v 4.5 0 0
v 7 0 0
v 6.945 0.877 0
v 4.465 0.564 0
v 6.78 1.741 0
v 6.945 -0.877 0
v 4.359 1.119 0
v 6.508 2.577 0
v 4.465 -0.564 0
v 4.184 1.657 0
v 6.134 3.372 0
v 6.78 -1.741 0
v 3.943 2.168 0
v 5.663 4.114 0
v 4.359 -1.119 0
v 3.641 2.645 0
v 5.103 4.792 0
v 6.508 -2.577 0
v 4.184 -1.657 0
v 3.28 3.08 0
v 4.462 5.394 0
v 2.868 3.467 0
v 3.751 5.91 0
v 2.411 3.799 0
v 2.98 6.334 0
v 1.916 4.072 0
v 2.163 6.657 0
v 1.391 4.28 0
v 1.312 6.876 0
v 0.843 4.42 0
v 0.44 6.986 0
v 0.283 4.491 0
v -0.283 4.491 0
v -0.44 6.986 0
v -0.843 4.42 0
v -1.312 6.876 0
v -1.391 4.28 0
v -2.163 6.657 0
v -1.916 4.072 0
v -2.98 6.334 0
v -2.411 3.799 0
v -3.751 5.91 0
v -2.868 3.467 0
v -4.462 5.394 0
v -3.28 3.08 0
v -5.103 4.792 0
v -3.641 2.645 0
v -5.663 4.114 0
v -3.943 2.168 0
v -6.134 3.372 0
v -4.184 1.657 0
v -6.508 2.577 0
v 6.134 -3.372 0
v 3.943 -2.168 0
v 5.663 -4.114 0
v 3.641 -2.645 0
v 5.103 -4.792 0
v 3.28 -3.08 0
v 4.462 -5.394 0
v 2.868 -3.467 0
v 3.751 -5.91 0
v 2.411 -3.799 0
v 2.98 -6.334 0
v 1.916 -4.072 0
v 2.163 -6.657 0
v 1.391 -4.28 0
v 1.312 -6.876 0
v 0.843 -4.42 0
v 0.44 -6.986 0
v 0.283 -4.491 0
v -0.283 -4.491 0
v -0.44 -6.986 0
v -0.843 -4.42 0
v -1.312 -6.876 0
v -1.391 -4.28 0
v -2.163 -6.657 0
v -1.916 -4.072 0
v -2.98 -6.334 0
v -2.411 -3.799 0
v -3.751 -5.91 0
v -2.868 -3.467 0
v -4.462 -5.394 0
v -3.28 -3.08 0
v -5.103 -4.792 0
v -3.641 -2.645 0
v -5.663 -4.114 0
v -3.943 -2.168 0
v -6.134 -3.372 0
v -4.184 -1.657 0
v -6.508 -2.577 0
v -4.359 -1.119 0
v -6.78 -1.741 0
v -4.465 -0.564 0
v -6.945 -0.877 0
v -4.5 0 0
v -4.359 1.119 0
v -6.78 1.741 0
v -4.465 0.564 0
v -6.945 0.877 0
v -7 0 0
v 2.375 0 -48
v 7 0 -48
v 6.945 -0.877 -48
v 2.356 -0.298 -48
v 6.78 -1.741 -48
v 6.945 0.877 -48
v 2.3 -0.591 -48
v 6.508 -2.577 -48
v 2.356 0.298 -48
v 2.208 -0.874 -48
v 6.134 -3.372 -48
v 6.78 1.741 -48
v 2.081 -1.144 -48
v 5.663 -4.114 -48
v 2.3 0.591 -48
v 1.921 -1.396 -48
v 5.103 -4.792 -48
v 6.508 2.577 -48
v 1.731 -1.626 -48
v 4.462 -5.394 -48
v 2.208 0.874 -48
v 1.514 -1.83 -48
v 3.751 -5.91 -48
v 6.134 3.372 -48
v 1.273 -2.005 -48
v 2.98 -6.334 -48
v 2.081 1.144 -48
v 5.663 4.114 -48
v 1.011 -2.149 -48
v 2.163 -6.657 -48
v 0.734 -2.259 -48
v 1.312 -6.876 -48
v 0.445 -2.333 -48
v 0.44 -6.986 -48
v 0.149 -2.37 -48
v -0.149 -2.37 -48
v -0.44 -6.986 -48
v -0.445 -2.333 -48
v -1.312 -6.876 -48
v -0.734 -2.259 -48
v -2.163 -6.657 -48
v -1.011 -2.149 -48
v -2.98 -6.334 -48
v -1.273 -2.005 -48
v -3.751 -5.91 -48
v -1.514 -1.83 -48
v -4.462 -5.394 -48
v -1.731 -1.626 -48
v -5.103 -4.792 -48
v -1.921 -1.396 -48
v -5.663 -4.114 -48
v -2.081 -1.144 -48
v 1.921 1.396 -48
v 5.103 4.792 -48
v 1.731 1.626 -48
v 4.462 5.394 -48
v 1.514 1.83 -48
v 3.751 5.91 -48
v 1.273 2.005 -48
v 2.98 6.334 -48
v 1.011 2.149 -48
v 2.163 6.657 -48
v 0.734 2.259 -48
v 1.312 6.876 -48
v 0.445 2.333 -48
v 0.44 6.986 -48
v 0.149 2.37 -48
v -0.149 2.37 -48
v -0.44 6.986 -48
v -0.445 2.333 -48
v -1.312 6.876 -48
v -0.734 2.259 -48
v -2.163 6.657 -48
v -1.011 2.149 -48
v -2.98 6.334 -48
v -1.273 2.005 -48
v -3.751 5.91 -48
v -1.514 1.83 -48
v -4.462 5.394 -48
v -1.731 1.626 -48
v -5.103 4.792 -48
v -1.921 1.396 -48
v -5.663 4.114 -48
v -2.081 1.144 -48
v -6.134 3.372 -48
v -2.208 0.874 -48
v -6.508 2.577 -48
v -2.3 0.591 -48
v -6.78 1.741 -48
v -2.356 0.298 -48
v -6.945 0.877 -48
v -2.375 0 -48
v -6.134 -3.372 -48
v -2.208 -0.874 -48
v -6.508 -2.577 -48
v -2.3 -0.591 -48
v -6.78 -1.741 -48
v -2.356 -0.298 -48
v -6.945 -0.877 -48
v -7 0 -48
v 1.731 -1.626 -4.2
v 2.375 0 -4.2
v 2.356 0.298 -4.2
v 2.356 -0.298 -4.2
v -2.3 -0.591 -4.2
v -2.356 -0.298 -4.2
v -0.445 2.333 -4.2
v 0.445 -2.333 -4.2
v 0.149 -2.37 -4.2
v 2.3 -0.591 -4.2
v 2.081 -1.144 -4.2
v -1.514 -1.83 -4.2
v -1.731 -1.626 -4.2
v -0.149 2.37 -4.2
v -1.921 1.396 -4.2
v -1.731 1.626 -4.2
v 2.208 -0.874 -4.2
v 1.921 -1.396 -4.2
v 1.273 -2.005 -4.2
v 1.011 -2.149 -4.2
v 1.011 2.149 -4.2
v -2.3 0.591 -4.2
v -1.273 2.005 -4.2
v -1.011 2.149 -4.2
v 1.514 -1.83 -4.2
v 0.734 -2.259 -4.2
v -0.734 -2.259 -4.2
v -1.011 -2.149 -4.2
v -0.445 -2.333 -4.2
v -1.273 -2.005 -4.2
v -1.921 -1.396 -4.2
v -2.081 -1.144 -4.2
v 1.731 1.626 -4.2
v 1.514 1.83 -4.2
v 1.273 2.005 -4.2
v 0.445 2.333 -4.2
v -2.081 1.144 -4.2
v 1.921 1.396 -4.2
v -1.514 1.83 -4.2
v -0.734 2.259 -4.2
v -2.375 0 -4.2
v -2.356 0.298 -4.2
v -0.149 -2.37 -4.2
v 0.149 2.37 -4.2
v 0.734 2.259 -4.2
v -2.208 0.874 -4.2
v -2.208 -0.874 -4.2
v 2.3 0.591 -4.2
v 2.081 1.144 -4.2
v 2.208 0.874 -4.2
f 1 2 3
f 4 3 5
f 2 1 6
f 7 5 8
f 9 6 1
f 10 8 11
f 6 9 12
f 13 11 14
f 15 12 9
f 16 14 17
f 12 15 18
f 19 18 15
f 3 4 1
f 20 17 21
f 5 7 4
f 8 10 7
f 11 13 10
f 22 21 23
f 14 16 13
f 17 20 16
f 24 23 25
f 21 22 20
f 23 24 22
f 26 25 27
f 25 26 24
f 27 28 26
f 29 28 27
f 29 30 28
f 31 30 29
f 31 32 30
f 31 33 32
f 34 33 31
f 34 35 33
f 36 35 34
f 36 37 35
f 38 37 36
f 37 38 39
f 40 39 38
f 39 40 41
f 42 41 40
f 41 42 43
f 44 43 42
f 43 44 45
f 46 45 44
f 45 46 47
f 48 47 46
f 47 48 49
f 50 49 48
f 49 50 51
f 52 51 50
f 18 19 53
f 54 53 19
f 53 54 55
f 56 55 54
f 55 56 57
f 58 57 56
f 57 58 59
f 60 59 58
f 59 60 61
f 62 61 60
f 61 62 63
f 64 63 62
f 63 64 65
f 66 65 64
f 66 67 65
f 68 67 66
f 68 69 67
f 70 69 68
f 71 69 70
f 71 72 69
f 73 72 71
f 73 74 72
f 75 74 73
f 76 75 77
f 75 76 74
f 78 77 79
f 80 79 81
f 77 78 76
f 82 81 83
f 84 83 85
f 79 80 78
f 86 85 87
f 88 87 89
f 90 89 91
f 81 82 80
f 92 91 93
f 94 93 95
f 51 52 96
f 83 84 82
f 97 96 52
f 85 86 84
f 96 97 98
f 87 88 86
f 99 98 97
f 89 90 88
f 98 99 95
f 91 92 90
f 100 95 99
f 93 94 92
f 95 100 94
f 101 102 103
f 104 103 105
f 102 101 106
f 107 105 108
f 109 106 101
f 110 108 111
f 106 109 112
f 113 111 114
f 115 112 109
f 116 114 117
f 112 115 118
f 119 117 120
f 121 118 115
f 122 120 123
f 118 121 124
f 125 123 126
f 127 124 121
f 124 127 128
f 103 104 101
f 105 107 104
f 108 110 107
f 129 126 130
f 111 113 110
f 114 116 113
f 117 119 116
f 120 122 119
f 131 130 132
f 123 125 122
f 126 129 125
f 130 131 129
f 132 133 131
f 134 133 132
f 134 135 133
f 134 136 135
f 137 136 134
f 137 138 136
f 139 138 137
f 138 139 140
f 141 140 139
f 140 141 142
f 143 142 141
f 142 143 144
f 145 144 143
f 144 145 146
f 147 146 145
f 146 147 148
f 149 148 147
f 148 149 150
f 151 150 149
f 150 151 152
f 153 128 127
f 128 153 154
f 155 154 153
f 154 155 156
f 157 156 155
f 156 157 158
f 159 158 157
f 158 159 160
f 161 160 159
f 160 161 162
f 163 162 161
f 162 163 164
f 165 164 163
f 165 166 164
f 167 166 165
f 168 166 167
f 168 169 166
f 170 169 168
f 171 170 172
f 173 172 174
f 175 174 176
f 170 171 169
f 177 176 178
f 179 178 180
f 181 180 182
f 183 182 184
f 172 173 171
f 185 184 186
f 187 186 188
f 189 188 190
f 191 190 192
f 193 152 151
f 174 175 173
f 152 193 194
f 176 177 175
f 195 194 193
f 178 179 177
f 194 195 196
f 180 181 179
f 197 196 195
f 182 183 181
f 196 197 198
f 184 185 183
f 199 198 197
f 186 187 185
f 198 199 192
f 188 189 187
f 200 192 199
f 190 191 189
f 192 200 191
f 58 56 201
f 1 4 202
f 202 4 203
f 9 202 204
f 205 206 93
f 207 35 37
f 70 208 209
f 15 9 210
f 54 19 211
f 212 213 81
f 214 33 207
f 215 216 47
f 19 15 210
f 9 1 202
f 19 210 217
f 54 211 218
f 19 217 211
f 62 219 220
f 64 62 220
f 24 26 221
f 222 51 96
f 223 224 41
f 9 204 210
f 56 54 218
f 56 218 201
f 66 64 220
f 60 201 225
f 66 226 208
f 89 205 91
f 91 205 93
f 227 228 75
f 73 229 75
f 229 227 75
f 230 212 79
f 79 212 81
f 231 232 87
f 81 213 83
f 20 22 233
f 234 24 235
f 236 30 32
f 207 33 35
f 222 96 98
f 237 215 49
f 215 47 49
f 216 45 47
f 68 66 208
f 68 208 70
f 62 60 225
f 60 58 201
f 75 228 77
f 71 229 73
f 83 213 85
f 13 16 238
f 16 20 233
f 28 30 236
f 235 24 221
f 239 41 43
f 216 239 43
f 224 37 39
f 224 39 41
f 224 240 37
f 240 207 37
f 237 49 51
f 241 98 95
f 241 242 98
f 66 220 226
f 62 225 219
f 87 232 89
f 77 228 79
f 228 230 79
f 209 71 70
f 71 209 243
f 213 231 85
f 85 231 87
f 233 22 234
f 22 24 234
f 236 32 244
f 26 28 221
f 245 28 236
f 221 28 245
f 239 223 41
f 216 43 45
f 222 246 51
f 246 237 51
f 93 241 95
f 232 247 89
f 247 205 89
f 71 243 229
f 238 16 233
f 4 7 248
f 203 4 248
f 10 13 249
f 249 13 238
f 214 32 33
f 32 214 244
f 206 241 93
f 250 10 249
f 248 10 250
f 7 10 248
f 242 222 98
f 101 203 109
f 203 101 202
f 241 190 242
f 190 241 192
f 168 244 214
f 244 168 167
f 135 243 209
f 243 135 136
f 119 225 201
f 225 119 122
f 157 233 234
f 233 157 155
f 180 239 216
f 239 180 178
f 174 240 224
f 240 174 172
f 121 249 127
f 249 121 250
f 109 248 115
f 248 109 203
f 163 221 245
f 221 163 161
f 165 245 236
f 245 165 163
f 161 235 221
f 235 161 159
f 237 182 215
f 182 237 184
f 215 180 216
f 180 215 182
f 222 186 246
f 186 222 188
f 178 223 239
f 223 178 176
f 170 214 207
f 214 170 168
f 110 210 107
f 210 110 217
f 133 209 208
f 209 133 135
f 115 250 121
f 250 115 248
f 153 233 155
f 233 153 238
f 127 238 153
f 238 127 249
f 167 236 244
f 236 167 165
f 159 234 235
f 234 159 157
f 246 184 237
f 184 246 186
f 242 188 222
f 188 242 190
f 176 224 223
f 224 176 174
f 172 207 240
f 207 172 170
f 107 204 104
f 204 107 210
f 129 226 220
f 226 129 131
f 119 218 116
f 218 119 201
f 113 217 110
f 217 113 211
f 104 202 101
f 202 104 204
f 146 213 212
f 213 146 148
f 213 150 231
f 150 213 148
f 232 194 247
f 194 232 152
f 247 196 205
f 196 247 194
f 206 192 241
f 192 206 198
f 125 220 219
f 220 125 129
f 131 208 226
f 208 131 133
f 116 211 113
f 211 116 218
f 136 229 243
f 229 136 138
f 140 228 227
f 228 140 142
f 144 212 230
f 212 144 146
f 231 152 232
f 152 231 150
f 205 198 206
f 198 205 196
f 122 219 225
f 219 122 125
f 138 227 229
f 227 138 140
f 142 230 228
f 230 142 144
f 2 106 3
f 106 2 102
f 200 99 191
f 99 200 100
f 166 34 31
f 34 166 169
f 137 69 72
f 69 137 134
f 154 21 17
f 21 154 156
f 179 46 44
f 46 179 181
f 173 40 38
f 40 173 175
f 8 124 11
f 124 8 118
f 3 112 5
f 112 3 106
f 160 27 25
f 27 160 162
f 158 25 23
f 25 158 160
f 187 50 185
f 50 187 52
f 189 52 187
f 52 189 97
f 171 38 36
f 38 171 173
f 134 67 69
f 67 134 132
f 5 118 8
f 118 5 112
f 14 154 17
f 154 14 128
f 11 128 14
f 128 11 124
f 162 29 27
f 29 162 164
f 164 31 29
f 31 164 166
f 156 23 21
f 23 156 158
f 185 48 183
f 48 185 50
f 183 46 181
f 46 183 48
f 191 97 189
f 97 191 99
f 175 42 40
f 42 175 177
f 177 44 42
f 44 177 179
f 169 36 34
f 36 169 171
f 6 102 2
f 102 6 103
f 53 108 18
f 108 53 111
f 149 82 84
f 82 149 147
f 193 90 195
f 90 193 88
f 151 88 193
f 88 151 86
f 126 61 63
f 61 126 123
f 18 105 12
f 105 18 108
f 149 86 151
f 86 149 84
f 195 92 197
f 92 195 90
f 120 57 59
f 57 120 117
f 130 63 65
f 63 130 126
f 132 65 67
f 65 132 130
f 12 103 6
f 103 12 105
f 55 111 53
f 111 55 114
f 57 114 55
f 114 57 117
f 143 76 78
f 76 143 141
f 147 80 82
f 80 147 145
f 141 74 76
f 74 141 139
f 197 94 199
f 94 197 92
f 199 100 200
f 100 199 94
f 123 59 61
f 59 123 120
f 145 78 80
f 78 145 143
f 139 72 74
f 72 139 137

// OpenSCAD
$fn = 50;


difference() {
	union() {
		translate(v = [0, 0, -48.0000000000]) {
			cylinder(h = 48, r = 7.0000000000);
		}
		cylinder(h = 0, r = 17.0000000000);
	}
	union() {
		translate(v = [0, 0, 0]) {
			rotate(a = [0, 0, 0]) {
				difference() {
					union() {
						#translate(v = [0, 0, -48.0000000000]) {
							cylinder(h = 48, r = 2.2500000000);
						}
						#translate(v = [0, 0, -4.2000000000]) {
							cylinder(h = 4.2000000000, r = 7.0000000000, r1 = 2.3750000000, r2 = 4.5000000000);
						}
						#translate(v = [0, 0, -48.0000000000]) {
							cylinder(h = 48, r = 2.3750000000);
						}
						#translate(v = [0, 0, -48.0000000000]) {
							cylinder(h = 48, r = 2.2500000000);
						}
					}
					union();
				}
			}
		}
	}
}
